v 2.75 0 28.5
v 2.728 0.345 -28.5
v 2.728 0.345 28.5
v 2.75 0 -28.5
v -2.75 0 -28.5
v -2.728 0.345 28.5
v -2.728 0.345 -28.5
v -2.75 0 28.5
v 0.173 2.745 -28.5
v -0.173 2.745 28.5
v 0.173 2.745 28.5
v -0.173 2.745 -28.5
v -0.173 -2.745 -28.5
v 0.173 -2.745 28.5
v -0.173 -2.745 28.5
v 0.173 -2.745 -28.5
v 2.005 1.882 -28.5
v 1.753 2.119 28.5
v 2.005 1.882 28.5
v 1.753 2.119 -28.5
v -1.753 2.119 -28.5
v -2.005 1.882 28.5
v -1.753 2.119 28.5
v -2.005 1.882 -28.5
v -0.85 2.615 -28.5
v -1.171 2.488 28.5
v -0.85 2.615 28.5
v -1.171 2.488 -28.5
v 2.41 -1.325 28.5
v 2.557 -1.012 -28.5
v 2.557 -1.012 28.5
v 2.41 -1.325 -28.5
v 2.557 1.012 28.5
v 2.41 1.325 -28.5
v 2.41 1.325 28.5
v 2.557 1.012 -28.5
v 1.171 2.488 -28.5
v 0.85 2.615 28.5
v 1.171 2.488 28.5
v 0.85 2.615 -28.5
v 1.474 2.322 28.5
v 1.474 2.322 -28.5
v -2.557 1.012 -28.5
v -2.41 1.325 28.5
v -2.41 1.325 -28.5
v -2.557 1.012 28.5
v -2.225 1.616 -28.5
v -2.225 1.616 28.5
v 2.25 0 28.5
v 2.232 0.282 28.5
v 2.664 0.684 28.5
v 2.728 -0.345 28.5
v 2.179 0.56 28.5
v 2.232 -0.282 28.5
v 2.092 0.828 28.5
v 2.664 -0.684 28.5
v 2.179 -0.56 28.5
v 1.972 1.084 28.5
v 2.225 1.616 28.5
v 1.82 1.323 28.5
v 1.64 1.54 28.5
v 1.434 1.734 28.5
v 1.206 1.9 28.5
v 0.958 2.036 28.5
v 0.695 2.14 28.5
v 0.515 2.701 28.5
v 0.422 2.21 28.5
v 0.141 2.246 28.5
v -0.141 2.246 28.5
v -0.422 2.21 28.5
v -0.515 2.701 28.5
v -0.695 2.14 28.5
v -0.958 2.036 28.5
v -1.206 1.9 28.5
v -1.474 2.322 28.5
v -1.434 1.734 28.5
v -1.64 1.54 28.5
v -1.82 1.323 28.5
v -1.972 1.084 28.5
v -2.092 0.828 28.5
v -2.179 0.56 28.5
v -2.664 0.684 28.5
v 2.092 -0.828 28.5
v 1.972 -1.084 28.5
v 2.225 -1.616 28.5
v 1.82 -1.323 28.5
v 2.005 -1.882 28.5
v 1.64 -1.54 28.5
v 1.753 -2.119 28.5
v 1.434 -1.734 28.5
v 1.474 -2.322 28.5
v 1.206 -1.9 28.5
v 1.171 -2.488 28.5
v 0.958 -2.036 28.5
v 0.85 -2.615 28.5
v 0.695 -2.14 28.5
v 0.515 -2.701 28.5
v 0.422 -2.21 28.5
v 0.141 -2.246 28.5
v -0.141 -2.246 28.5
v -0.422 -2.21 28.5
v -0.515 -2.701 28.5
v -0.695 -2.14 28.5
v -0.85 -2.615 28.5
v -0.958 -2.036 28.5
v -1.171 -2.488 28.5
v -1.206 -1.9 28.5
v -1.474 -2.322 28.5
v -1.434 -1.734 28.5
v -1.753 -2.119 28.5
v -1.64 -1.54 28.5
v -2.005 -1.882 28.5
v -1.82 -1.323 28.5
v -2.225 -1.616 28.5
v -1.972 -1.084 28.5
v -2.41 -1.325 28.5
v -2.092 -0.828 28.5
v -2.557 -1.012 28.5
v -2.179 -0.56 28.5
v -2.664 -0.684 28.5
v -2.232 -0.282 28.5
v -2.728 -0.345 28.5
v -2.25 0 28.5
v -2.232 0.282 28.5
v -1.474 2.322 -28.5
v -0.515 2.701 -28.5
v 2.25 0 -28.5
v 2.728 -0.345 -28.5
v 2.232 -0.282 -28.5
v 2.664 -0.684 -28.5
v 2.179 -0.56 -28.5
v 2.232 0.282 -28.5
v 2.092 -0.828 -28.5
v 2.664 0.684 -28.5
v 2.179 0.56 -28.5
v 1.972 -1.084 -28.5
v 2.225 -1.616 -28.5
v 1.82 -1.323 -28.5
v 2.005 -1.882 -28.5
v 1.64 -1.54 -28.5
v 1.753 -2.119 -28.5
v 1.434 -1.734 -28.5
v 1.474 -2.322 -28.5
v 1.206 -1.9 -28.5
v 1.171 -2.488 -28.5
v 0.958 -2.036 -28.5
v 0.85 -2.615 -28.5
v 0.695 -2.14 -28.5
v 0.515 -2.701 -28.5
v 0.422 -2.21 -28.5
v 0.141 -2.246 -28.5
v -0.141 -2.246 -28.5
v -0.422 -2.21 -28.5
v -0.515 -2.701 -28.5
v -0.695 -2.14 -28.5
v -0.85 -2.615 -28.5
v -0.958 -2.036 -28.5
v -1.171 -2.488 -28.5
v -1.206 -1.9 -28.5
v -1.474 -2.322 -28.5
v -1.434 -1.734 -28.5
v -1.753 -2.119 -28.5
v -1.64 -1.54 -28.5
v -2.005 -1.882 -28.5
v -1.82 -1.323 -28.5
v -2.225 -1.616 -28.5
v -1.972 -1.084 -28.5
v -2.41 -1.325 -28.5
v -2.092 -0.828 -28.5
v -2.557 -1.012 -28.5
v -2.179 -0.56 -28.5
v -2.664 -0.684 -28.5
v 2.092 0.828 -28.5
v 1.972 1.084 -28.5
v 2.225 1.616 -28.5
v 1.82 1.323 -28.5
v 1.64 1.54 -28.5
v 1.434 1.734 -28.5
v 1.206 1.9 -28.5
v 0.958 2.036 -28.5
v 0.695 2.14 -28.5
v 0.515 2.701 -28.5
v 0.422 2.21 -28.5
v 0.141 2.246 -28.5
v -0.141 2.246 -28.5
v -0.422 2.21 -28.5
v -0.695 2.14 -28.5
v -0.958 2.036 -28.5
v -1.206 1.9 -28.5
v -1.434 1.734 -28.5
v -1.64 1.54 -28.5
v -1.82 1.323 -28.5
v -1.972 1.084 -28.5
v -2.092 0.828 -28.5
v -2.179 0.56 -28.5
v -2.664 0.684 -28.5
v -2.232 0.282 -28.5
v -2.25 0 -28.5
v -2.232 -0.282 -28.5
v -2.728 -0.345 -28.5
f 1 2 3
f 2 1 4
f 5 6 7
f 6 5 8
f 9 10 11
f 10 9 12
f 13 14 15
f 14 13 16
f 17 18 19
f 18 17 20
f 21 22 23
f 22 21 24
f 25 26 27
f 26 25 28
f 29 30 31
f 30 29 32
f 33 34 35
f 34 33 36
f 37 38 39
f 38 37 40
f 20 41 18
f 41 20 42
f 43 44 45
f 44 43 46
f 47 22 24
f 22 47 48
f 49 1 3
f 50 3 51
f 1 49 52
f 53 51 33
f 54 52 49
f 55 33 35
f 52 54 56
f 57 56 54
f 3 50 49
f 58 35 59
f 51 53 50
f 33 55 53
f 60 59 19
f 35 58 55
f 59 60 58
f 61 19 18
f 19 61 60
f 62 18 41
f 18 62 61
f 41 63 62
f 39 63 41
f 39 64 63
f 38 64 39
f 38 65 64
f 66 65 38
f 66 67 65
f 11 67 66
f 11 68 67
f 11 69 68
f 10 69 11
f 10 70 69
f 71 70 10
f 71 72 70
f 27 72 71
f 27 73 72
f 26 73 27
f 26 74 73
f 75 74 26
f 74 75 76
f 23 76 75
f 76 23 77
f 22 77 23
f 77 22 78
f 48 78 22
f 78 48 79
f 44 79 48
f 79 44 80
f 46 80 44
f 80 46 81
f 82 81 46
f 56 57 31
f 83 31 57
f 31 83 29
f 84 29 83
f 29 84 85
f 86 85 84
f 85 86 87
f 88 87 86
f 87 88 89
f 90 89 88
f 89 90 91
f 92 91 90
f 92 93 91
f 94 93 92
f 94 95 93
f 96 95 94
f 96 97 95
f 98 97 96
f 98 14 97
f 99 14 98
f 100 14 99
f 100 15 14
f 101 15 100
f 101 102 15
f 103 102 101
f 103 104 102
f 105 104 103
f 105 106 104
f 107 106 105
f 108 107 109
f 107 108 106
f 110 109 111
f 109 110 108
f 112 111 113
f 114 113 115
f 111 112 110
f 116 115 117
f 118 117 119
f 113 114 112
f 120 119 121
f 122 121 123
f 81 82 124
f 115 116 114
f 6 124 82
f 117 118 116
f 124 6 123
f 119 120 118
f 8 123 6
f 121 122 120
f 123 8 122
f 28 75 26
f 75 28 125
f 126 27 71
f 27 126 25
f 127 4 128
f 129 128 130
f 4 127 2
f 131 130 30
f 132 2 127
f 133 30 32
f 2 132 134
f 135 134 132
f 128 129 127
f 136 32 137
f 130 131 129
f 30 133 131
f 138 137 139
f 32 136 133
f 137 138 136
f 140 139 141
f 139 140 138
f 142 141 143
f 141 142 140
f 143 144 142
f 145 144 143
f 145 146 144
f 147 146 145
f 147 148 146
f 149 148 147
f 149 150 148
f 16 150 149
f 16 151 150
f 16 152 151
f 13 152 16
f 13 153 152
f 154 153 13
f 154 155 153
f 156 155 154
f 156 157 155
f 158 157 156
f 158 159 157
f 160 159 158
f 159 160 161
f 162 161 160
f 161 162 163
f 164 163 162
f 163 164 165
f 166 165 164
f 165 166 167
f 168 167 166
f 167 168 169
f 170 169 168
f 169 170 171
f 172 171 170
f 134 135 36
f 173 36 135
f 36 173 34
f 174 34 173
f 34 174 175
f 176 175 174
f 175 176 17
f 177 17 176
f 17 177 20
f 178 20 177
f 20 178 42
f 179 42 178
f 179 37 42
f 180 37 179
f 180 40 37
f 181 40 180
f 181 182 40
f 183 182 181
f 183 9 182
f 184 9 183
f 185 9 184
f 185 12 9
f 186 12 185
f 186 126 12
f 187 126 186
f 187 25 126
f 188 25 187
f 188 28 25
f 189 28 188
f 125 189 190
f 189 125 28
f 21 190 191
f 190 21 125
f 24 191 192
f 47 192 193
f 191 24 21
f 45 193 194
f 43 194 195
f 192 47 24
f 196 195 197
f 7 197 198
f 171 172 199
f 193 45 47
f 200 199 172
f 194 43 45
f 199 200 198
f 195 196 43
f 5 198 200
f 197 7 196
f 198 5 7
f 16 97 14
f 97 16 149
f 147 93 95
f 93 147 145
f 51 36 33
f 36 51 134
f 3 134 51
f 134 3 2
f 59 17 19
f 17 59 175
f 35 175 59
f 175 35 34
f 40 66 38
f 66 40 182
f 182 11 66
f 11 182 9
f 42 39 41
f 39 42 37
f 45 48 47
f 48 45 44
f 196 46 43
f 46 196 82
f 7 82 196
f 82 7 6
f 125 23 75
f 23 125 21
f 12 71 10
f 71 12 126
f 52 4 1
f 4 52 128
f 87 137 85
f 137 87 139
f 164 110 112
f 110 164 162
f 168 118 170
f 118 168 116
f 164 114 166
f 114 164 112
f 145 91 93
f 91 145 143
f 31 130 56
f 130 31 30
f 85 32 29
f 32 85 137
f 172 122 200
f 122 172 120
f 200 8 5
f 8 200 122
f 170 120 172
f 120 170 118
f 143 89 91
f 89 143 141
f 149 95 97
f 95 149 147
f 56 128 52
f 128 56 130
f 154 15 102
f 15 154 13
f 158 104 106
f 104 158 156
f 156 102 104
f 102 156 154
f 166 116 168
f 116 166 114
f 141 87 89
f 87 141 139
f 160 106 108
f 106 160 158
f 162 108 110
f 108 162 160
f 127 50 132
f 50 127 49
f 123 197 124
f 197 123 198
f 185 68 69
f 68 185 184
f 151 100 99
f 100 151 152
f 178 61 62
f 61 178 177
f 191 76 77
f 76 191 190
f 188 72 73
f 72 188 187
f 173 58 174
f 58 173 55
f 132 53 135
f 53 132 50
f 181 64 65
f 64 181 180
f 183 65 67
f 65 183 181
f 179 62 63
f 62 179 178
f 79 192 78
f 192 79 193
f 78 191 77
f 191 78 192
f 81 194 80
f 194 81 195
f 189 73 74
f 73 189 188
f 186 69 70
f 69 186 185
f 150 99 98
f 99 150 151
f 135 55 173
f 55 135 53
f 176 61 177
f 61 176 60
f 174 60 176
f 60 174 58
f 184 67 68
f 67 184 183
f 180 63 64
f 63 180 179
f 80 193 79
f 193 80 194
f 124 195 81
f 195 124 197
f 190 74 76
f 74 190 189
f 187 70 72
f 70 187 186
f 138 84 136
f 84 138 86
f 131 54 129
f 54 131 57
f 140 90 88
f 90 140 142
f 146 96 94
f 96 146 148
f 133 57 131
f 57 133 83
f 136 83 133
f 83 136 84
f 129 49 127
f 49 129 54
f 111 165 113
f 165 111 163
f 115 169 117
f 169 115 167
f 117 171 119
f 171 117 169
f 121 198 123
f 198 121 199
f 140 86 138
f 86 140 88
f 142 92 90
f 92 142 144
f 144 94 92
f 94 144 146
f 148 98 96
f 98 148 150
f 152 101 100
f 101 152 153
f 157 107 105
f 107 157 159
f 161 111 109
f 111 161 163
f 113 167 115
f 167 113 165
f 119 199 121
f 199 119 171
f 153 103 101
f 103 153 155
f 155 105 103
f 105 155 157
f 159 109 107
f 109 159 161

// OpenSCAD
$fn = 50;


difference() {
	union() {
		translate(v = [0, 0, -28.5000000000]) {
			cylinder(h = 57, r = 2.7500000000);
		}
	}
	union() {
		translate(v = [0, 0, -100.0000000000]) {
			cylinder(h = 200, r = 2.2500000000);
		}
	}
}
